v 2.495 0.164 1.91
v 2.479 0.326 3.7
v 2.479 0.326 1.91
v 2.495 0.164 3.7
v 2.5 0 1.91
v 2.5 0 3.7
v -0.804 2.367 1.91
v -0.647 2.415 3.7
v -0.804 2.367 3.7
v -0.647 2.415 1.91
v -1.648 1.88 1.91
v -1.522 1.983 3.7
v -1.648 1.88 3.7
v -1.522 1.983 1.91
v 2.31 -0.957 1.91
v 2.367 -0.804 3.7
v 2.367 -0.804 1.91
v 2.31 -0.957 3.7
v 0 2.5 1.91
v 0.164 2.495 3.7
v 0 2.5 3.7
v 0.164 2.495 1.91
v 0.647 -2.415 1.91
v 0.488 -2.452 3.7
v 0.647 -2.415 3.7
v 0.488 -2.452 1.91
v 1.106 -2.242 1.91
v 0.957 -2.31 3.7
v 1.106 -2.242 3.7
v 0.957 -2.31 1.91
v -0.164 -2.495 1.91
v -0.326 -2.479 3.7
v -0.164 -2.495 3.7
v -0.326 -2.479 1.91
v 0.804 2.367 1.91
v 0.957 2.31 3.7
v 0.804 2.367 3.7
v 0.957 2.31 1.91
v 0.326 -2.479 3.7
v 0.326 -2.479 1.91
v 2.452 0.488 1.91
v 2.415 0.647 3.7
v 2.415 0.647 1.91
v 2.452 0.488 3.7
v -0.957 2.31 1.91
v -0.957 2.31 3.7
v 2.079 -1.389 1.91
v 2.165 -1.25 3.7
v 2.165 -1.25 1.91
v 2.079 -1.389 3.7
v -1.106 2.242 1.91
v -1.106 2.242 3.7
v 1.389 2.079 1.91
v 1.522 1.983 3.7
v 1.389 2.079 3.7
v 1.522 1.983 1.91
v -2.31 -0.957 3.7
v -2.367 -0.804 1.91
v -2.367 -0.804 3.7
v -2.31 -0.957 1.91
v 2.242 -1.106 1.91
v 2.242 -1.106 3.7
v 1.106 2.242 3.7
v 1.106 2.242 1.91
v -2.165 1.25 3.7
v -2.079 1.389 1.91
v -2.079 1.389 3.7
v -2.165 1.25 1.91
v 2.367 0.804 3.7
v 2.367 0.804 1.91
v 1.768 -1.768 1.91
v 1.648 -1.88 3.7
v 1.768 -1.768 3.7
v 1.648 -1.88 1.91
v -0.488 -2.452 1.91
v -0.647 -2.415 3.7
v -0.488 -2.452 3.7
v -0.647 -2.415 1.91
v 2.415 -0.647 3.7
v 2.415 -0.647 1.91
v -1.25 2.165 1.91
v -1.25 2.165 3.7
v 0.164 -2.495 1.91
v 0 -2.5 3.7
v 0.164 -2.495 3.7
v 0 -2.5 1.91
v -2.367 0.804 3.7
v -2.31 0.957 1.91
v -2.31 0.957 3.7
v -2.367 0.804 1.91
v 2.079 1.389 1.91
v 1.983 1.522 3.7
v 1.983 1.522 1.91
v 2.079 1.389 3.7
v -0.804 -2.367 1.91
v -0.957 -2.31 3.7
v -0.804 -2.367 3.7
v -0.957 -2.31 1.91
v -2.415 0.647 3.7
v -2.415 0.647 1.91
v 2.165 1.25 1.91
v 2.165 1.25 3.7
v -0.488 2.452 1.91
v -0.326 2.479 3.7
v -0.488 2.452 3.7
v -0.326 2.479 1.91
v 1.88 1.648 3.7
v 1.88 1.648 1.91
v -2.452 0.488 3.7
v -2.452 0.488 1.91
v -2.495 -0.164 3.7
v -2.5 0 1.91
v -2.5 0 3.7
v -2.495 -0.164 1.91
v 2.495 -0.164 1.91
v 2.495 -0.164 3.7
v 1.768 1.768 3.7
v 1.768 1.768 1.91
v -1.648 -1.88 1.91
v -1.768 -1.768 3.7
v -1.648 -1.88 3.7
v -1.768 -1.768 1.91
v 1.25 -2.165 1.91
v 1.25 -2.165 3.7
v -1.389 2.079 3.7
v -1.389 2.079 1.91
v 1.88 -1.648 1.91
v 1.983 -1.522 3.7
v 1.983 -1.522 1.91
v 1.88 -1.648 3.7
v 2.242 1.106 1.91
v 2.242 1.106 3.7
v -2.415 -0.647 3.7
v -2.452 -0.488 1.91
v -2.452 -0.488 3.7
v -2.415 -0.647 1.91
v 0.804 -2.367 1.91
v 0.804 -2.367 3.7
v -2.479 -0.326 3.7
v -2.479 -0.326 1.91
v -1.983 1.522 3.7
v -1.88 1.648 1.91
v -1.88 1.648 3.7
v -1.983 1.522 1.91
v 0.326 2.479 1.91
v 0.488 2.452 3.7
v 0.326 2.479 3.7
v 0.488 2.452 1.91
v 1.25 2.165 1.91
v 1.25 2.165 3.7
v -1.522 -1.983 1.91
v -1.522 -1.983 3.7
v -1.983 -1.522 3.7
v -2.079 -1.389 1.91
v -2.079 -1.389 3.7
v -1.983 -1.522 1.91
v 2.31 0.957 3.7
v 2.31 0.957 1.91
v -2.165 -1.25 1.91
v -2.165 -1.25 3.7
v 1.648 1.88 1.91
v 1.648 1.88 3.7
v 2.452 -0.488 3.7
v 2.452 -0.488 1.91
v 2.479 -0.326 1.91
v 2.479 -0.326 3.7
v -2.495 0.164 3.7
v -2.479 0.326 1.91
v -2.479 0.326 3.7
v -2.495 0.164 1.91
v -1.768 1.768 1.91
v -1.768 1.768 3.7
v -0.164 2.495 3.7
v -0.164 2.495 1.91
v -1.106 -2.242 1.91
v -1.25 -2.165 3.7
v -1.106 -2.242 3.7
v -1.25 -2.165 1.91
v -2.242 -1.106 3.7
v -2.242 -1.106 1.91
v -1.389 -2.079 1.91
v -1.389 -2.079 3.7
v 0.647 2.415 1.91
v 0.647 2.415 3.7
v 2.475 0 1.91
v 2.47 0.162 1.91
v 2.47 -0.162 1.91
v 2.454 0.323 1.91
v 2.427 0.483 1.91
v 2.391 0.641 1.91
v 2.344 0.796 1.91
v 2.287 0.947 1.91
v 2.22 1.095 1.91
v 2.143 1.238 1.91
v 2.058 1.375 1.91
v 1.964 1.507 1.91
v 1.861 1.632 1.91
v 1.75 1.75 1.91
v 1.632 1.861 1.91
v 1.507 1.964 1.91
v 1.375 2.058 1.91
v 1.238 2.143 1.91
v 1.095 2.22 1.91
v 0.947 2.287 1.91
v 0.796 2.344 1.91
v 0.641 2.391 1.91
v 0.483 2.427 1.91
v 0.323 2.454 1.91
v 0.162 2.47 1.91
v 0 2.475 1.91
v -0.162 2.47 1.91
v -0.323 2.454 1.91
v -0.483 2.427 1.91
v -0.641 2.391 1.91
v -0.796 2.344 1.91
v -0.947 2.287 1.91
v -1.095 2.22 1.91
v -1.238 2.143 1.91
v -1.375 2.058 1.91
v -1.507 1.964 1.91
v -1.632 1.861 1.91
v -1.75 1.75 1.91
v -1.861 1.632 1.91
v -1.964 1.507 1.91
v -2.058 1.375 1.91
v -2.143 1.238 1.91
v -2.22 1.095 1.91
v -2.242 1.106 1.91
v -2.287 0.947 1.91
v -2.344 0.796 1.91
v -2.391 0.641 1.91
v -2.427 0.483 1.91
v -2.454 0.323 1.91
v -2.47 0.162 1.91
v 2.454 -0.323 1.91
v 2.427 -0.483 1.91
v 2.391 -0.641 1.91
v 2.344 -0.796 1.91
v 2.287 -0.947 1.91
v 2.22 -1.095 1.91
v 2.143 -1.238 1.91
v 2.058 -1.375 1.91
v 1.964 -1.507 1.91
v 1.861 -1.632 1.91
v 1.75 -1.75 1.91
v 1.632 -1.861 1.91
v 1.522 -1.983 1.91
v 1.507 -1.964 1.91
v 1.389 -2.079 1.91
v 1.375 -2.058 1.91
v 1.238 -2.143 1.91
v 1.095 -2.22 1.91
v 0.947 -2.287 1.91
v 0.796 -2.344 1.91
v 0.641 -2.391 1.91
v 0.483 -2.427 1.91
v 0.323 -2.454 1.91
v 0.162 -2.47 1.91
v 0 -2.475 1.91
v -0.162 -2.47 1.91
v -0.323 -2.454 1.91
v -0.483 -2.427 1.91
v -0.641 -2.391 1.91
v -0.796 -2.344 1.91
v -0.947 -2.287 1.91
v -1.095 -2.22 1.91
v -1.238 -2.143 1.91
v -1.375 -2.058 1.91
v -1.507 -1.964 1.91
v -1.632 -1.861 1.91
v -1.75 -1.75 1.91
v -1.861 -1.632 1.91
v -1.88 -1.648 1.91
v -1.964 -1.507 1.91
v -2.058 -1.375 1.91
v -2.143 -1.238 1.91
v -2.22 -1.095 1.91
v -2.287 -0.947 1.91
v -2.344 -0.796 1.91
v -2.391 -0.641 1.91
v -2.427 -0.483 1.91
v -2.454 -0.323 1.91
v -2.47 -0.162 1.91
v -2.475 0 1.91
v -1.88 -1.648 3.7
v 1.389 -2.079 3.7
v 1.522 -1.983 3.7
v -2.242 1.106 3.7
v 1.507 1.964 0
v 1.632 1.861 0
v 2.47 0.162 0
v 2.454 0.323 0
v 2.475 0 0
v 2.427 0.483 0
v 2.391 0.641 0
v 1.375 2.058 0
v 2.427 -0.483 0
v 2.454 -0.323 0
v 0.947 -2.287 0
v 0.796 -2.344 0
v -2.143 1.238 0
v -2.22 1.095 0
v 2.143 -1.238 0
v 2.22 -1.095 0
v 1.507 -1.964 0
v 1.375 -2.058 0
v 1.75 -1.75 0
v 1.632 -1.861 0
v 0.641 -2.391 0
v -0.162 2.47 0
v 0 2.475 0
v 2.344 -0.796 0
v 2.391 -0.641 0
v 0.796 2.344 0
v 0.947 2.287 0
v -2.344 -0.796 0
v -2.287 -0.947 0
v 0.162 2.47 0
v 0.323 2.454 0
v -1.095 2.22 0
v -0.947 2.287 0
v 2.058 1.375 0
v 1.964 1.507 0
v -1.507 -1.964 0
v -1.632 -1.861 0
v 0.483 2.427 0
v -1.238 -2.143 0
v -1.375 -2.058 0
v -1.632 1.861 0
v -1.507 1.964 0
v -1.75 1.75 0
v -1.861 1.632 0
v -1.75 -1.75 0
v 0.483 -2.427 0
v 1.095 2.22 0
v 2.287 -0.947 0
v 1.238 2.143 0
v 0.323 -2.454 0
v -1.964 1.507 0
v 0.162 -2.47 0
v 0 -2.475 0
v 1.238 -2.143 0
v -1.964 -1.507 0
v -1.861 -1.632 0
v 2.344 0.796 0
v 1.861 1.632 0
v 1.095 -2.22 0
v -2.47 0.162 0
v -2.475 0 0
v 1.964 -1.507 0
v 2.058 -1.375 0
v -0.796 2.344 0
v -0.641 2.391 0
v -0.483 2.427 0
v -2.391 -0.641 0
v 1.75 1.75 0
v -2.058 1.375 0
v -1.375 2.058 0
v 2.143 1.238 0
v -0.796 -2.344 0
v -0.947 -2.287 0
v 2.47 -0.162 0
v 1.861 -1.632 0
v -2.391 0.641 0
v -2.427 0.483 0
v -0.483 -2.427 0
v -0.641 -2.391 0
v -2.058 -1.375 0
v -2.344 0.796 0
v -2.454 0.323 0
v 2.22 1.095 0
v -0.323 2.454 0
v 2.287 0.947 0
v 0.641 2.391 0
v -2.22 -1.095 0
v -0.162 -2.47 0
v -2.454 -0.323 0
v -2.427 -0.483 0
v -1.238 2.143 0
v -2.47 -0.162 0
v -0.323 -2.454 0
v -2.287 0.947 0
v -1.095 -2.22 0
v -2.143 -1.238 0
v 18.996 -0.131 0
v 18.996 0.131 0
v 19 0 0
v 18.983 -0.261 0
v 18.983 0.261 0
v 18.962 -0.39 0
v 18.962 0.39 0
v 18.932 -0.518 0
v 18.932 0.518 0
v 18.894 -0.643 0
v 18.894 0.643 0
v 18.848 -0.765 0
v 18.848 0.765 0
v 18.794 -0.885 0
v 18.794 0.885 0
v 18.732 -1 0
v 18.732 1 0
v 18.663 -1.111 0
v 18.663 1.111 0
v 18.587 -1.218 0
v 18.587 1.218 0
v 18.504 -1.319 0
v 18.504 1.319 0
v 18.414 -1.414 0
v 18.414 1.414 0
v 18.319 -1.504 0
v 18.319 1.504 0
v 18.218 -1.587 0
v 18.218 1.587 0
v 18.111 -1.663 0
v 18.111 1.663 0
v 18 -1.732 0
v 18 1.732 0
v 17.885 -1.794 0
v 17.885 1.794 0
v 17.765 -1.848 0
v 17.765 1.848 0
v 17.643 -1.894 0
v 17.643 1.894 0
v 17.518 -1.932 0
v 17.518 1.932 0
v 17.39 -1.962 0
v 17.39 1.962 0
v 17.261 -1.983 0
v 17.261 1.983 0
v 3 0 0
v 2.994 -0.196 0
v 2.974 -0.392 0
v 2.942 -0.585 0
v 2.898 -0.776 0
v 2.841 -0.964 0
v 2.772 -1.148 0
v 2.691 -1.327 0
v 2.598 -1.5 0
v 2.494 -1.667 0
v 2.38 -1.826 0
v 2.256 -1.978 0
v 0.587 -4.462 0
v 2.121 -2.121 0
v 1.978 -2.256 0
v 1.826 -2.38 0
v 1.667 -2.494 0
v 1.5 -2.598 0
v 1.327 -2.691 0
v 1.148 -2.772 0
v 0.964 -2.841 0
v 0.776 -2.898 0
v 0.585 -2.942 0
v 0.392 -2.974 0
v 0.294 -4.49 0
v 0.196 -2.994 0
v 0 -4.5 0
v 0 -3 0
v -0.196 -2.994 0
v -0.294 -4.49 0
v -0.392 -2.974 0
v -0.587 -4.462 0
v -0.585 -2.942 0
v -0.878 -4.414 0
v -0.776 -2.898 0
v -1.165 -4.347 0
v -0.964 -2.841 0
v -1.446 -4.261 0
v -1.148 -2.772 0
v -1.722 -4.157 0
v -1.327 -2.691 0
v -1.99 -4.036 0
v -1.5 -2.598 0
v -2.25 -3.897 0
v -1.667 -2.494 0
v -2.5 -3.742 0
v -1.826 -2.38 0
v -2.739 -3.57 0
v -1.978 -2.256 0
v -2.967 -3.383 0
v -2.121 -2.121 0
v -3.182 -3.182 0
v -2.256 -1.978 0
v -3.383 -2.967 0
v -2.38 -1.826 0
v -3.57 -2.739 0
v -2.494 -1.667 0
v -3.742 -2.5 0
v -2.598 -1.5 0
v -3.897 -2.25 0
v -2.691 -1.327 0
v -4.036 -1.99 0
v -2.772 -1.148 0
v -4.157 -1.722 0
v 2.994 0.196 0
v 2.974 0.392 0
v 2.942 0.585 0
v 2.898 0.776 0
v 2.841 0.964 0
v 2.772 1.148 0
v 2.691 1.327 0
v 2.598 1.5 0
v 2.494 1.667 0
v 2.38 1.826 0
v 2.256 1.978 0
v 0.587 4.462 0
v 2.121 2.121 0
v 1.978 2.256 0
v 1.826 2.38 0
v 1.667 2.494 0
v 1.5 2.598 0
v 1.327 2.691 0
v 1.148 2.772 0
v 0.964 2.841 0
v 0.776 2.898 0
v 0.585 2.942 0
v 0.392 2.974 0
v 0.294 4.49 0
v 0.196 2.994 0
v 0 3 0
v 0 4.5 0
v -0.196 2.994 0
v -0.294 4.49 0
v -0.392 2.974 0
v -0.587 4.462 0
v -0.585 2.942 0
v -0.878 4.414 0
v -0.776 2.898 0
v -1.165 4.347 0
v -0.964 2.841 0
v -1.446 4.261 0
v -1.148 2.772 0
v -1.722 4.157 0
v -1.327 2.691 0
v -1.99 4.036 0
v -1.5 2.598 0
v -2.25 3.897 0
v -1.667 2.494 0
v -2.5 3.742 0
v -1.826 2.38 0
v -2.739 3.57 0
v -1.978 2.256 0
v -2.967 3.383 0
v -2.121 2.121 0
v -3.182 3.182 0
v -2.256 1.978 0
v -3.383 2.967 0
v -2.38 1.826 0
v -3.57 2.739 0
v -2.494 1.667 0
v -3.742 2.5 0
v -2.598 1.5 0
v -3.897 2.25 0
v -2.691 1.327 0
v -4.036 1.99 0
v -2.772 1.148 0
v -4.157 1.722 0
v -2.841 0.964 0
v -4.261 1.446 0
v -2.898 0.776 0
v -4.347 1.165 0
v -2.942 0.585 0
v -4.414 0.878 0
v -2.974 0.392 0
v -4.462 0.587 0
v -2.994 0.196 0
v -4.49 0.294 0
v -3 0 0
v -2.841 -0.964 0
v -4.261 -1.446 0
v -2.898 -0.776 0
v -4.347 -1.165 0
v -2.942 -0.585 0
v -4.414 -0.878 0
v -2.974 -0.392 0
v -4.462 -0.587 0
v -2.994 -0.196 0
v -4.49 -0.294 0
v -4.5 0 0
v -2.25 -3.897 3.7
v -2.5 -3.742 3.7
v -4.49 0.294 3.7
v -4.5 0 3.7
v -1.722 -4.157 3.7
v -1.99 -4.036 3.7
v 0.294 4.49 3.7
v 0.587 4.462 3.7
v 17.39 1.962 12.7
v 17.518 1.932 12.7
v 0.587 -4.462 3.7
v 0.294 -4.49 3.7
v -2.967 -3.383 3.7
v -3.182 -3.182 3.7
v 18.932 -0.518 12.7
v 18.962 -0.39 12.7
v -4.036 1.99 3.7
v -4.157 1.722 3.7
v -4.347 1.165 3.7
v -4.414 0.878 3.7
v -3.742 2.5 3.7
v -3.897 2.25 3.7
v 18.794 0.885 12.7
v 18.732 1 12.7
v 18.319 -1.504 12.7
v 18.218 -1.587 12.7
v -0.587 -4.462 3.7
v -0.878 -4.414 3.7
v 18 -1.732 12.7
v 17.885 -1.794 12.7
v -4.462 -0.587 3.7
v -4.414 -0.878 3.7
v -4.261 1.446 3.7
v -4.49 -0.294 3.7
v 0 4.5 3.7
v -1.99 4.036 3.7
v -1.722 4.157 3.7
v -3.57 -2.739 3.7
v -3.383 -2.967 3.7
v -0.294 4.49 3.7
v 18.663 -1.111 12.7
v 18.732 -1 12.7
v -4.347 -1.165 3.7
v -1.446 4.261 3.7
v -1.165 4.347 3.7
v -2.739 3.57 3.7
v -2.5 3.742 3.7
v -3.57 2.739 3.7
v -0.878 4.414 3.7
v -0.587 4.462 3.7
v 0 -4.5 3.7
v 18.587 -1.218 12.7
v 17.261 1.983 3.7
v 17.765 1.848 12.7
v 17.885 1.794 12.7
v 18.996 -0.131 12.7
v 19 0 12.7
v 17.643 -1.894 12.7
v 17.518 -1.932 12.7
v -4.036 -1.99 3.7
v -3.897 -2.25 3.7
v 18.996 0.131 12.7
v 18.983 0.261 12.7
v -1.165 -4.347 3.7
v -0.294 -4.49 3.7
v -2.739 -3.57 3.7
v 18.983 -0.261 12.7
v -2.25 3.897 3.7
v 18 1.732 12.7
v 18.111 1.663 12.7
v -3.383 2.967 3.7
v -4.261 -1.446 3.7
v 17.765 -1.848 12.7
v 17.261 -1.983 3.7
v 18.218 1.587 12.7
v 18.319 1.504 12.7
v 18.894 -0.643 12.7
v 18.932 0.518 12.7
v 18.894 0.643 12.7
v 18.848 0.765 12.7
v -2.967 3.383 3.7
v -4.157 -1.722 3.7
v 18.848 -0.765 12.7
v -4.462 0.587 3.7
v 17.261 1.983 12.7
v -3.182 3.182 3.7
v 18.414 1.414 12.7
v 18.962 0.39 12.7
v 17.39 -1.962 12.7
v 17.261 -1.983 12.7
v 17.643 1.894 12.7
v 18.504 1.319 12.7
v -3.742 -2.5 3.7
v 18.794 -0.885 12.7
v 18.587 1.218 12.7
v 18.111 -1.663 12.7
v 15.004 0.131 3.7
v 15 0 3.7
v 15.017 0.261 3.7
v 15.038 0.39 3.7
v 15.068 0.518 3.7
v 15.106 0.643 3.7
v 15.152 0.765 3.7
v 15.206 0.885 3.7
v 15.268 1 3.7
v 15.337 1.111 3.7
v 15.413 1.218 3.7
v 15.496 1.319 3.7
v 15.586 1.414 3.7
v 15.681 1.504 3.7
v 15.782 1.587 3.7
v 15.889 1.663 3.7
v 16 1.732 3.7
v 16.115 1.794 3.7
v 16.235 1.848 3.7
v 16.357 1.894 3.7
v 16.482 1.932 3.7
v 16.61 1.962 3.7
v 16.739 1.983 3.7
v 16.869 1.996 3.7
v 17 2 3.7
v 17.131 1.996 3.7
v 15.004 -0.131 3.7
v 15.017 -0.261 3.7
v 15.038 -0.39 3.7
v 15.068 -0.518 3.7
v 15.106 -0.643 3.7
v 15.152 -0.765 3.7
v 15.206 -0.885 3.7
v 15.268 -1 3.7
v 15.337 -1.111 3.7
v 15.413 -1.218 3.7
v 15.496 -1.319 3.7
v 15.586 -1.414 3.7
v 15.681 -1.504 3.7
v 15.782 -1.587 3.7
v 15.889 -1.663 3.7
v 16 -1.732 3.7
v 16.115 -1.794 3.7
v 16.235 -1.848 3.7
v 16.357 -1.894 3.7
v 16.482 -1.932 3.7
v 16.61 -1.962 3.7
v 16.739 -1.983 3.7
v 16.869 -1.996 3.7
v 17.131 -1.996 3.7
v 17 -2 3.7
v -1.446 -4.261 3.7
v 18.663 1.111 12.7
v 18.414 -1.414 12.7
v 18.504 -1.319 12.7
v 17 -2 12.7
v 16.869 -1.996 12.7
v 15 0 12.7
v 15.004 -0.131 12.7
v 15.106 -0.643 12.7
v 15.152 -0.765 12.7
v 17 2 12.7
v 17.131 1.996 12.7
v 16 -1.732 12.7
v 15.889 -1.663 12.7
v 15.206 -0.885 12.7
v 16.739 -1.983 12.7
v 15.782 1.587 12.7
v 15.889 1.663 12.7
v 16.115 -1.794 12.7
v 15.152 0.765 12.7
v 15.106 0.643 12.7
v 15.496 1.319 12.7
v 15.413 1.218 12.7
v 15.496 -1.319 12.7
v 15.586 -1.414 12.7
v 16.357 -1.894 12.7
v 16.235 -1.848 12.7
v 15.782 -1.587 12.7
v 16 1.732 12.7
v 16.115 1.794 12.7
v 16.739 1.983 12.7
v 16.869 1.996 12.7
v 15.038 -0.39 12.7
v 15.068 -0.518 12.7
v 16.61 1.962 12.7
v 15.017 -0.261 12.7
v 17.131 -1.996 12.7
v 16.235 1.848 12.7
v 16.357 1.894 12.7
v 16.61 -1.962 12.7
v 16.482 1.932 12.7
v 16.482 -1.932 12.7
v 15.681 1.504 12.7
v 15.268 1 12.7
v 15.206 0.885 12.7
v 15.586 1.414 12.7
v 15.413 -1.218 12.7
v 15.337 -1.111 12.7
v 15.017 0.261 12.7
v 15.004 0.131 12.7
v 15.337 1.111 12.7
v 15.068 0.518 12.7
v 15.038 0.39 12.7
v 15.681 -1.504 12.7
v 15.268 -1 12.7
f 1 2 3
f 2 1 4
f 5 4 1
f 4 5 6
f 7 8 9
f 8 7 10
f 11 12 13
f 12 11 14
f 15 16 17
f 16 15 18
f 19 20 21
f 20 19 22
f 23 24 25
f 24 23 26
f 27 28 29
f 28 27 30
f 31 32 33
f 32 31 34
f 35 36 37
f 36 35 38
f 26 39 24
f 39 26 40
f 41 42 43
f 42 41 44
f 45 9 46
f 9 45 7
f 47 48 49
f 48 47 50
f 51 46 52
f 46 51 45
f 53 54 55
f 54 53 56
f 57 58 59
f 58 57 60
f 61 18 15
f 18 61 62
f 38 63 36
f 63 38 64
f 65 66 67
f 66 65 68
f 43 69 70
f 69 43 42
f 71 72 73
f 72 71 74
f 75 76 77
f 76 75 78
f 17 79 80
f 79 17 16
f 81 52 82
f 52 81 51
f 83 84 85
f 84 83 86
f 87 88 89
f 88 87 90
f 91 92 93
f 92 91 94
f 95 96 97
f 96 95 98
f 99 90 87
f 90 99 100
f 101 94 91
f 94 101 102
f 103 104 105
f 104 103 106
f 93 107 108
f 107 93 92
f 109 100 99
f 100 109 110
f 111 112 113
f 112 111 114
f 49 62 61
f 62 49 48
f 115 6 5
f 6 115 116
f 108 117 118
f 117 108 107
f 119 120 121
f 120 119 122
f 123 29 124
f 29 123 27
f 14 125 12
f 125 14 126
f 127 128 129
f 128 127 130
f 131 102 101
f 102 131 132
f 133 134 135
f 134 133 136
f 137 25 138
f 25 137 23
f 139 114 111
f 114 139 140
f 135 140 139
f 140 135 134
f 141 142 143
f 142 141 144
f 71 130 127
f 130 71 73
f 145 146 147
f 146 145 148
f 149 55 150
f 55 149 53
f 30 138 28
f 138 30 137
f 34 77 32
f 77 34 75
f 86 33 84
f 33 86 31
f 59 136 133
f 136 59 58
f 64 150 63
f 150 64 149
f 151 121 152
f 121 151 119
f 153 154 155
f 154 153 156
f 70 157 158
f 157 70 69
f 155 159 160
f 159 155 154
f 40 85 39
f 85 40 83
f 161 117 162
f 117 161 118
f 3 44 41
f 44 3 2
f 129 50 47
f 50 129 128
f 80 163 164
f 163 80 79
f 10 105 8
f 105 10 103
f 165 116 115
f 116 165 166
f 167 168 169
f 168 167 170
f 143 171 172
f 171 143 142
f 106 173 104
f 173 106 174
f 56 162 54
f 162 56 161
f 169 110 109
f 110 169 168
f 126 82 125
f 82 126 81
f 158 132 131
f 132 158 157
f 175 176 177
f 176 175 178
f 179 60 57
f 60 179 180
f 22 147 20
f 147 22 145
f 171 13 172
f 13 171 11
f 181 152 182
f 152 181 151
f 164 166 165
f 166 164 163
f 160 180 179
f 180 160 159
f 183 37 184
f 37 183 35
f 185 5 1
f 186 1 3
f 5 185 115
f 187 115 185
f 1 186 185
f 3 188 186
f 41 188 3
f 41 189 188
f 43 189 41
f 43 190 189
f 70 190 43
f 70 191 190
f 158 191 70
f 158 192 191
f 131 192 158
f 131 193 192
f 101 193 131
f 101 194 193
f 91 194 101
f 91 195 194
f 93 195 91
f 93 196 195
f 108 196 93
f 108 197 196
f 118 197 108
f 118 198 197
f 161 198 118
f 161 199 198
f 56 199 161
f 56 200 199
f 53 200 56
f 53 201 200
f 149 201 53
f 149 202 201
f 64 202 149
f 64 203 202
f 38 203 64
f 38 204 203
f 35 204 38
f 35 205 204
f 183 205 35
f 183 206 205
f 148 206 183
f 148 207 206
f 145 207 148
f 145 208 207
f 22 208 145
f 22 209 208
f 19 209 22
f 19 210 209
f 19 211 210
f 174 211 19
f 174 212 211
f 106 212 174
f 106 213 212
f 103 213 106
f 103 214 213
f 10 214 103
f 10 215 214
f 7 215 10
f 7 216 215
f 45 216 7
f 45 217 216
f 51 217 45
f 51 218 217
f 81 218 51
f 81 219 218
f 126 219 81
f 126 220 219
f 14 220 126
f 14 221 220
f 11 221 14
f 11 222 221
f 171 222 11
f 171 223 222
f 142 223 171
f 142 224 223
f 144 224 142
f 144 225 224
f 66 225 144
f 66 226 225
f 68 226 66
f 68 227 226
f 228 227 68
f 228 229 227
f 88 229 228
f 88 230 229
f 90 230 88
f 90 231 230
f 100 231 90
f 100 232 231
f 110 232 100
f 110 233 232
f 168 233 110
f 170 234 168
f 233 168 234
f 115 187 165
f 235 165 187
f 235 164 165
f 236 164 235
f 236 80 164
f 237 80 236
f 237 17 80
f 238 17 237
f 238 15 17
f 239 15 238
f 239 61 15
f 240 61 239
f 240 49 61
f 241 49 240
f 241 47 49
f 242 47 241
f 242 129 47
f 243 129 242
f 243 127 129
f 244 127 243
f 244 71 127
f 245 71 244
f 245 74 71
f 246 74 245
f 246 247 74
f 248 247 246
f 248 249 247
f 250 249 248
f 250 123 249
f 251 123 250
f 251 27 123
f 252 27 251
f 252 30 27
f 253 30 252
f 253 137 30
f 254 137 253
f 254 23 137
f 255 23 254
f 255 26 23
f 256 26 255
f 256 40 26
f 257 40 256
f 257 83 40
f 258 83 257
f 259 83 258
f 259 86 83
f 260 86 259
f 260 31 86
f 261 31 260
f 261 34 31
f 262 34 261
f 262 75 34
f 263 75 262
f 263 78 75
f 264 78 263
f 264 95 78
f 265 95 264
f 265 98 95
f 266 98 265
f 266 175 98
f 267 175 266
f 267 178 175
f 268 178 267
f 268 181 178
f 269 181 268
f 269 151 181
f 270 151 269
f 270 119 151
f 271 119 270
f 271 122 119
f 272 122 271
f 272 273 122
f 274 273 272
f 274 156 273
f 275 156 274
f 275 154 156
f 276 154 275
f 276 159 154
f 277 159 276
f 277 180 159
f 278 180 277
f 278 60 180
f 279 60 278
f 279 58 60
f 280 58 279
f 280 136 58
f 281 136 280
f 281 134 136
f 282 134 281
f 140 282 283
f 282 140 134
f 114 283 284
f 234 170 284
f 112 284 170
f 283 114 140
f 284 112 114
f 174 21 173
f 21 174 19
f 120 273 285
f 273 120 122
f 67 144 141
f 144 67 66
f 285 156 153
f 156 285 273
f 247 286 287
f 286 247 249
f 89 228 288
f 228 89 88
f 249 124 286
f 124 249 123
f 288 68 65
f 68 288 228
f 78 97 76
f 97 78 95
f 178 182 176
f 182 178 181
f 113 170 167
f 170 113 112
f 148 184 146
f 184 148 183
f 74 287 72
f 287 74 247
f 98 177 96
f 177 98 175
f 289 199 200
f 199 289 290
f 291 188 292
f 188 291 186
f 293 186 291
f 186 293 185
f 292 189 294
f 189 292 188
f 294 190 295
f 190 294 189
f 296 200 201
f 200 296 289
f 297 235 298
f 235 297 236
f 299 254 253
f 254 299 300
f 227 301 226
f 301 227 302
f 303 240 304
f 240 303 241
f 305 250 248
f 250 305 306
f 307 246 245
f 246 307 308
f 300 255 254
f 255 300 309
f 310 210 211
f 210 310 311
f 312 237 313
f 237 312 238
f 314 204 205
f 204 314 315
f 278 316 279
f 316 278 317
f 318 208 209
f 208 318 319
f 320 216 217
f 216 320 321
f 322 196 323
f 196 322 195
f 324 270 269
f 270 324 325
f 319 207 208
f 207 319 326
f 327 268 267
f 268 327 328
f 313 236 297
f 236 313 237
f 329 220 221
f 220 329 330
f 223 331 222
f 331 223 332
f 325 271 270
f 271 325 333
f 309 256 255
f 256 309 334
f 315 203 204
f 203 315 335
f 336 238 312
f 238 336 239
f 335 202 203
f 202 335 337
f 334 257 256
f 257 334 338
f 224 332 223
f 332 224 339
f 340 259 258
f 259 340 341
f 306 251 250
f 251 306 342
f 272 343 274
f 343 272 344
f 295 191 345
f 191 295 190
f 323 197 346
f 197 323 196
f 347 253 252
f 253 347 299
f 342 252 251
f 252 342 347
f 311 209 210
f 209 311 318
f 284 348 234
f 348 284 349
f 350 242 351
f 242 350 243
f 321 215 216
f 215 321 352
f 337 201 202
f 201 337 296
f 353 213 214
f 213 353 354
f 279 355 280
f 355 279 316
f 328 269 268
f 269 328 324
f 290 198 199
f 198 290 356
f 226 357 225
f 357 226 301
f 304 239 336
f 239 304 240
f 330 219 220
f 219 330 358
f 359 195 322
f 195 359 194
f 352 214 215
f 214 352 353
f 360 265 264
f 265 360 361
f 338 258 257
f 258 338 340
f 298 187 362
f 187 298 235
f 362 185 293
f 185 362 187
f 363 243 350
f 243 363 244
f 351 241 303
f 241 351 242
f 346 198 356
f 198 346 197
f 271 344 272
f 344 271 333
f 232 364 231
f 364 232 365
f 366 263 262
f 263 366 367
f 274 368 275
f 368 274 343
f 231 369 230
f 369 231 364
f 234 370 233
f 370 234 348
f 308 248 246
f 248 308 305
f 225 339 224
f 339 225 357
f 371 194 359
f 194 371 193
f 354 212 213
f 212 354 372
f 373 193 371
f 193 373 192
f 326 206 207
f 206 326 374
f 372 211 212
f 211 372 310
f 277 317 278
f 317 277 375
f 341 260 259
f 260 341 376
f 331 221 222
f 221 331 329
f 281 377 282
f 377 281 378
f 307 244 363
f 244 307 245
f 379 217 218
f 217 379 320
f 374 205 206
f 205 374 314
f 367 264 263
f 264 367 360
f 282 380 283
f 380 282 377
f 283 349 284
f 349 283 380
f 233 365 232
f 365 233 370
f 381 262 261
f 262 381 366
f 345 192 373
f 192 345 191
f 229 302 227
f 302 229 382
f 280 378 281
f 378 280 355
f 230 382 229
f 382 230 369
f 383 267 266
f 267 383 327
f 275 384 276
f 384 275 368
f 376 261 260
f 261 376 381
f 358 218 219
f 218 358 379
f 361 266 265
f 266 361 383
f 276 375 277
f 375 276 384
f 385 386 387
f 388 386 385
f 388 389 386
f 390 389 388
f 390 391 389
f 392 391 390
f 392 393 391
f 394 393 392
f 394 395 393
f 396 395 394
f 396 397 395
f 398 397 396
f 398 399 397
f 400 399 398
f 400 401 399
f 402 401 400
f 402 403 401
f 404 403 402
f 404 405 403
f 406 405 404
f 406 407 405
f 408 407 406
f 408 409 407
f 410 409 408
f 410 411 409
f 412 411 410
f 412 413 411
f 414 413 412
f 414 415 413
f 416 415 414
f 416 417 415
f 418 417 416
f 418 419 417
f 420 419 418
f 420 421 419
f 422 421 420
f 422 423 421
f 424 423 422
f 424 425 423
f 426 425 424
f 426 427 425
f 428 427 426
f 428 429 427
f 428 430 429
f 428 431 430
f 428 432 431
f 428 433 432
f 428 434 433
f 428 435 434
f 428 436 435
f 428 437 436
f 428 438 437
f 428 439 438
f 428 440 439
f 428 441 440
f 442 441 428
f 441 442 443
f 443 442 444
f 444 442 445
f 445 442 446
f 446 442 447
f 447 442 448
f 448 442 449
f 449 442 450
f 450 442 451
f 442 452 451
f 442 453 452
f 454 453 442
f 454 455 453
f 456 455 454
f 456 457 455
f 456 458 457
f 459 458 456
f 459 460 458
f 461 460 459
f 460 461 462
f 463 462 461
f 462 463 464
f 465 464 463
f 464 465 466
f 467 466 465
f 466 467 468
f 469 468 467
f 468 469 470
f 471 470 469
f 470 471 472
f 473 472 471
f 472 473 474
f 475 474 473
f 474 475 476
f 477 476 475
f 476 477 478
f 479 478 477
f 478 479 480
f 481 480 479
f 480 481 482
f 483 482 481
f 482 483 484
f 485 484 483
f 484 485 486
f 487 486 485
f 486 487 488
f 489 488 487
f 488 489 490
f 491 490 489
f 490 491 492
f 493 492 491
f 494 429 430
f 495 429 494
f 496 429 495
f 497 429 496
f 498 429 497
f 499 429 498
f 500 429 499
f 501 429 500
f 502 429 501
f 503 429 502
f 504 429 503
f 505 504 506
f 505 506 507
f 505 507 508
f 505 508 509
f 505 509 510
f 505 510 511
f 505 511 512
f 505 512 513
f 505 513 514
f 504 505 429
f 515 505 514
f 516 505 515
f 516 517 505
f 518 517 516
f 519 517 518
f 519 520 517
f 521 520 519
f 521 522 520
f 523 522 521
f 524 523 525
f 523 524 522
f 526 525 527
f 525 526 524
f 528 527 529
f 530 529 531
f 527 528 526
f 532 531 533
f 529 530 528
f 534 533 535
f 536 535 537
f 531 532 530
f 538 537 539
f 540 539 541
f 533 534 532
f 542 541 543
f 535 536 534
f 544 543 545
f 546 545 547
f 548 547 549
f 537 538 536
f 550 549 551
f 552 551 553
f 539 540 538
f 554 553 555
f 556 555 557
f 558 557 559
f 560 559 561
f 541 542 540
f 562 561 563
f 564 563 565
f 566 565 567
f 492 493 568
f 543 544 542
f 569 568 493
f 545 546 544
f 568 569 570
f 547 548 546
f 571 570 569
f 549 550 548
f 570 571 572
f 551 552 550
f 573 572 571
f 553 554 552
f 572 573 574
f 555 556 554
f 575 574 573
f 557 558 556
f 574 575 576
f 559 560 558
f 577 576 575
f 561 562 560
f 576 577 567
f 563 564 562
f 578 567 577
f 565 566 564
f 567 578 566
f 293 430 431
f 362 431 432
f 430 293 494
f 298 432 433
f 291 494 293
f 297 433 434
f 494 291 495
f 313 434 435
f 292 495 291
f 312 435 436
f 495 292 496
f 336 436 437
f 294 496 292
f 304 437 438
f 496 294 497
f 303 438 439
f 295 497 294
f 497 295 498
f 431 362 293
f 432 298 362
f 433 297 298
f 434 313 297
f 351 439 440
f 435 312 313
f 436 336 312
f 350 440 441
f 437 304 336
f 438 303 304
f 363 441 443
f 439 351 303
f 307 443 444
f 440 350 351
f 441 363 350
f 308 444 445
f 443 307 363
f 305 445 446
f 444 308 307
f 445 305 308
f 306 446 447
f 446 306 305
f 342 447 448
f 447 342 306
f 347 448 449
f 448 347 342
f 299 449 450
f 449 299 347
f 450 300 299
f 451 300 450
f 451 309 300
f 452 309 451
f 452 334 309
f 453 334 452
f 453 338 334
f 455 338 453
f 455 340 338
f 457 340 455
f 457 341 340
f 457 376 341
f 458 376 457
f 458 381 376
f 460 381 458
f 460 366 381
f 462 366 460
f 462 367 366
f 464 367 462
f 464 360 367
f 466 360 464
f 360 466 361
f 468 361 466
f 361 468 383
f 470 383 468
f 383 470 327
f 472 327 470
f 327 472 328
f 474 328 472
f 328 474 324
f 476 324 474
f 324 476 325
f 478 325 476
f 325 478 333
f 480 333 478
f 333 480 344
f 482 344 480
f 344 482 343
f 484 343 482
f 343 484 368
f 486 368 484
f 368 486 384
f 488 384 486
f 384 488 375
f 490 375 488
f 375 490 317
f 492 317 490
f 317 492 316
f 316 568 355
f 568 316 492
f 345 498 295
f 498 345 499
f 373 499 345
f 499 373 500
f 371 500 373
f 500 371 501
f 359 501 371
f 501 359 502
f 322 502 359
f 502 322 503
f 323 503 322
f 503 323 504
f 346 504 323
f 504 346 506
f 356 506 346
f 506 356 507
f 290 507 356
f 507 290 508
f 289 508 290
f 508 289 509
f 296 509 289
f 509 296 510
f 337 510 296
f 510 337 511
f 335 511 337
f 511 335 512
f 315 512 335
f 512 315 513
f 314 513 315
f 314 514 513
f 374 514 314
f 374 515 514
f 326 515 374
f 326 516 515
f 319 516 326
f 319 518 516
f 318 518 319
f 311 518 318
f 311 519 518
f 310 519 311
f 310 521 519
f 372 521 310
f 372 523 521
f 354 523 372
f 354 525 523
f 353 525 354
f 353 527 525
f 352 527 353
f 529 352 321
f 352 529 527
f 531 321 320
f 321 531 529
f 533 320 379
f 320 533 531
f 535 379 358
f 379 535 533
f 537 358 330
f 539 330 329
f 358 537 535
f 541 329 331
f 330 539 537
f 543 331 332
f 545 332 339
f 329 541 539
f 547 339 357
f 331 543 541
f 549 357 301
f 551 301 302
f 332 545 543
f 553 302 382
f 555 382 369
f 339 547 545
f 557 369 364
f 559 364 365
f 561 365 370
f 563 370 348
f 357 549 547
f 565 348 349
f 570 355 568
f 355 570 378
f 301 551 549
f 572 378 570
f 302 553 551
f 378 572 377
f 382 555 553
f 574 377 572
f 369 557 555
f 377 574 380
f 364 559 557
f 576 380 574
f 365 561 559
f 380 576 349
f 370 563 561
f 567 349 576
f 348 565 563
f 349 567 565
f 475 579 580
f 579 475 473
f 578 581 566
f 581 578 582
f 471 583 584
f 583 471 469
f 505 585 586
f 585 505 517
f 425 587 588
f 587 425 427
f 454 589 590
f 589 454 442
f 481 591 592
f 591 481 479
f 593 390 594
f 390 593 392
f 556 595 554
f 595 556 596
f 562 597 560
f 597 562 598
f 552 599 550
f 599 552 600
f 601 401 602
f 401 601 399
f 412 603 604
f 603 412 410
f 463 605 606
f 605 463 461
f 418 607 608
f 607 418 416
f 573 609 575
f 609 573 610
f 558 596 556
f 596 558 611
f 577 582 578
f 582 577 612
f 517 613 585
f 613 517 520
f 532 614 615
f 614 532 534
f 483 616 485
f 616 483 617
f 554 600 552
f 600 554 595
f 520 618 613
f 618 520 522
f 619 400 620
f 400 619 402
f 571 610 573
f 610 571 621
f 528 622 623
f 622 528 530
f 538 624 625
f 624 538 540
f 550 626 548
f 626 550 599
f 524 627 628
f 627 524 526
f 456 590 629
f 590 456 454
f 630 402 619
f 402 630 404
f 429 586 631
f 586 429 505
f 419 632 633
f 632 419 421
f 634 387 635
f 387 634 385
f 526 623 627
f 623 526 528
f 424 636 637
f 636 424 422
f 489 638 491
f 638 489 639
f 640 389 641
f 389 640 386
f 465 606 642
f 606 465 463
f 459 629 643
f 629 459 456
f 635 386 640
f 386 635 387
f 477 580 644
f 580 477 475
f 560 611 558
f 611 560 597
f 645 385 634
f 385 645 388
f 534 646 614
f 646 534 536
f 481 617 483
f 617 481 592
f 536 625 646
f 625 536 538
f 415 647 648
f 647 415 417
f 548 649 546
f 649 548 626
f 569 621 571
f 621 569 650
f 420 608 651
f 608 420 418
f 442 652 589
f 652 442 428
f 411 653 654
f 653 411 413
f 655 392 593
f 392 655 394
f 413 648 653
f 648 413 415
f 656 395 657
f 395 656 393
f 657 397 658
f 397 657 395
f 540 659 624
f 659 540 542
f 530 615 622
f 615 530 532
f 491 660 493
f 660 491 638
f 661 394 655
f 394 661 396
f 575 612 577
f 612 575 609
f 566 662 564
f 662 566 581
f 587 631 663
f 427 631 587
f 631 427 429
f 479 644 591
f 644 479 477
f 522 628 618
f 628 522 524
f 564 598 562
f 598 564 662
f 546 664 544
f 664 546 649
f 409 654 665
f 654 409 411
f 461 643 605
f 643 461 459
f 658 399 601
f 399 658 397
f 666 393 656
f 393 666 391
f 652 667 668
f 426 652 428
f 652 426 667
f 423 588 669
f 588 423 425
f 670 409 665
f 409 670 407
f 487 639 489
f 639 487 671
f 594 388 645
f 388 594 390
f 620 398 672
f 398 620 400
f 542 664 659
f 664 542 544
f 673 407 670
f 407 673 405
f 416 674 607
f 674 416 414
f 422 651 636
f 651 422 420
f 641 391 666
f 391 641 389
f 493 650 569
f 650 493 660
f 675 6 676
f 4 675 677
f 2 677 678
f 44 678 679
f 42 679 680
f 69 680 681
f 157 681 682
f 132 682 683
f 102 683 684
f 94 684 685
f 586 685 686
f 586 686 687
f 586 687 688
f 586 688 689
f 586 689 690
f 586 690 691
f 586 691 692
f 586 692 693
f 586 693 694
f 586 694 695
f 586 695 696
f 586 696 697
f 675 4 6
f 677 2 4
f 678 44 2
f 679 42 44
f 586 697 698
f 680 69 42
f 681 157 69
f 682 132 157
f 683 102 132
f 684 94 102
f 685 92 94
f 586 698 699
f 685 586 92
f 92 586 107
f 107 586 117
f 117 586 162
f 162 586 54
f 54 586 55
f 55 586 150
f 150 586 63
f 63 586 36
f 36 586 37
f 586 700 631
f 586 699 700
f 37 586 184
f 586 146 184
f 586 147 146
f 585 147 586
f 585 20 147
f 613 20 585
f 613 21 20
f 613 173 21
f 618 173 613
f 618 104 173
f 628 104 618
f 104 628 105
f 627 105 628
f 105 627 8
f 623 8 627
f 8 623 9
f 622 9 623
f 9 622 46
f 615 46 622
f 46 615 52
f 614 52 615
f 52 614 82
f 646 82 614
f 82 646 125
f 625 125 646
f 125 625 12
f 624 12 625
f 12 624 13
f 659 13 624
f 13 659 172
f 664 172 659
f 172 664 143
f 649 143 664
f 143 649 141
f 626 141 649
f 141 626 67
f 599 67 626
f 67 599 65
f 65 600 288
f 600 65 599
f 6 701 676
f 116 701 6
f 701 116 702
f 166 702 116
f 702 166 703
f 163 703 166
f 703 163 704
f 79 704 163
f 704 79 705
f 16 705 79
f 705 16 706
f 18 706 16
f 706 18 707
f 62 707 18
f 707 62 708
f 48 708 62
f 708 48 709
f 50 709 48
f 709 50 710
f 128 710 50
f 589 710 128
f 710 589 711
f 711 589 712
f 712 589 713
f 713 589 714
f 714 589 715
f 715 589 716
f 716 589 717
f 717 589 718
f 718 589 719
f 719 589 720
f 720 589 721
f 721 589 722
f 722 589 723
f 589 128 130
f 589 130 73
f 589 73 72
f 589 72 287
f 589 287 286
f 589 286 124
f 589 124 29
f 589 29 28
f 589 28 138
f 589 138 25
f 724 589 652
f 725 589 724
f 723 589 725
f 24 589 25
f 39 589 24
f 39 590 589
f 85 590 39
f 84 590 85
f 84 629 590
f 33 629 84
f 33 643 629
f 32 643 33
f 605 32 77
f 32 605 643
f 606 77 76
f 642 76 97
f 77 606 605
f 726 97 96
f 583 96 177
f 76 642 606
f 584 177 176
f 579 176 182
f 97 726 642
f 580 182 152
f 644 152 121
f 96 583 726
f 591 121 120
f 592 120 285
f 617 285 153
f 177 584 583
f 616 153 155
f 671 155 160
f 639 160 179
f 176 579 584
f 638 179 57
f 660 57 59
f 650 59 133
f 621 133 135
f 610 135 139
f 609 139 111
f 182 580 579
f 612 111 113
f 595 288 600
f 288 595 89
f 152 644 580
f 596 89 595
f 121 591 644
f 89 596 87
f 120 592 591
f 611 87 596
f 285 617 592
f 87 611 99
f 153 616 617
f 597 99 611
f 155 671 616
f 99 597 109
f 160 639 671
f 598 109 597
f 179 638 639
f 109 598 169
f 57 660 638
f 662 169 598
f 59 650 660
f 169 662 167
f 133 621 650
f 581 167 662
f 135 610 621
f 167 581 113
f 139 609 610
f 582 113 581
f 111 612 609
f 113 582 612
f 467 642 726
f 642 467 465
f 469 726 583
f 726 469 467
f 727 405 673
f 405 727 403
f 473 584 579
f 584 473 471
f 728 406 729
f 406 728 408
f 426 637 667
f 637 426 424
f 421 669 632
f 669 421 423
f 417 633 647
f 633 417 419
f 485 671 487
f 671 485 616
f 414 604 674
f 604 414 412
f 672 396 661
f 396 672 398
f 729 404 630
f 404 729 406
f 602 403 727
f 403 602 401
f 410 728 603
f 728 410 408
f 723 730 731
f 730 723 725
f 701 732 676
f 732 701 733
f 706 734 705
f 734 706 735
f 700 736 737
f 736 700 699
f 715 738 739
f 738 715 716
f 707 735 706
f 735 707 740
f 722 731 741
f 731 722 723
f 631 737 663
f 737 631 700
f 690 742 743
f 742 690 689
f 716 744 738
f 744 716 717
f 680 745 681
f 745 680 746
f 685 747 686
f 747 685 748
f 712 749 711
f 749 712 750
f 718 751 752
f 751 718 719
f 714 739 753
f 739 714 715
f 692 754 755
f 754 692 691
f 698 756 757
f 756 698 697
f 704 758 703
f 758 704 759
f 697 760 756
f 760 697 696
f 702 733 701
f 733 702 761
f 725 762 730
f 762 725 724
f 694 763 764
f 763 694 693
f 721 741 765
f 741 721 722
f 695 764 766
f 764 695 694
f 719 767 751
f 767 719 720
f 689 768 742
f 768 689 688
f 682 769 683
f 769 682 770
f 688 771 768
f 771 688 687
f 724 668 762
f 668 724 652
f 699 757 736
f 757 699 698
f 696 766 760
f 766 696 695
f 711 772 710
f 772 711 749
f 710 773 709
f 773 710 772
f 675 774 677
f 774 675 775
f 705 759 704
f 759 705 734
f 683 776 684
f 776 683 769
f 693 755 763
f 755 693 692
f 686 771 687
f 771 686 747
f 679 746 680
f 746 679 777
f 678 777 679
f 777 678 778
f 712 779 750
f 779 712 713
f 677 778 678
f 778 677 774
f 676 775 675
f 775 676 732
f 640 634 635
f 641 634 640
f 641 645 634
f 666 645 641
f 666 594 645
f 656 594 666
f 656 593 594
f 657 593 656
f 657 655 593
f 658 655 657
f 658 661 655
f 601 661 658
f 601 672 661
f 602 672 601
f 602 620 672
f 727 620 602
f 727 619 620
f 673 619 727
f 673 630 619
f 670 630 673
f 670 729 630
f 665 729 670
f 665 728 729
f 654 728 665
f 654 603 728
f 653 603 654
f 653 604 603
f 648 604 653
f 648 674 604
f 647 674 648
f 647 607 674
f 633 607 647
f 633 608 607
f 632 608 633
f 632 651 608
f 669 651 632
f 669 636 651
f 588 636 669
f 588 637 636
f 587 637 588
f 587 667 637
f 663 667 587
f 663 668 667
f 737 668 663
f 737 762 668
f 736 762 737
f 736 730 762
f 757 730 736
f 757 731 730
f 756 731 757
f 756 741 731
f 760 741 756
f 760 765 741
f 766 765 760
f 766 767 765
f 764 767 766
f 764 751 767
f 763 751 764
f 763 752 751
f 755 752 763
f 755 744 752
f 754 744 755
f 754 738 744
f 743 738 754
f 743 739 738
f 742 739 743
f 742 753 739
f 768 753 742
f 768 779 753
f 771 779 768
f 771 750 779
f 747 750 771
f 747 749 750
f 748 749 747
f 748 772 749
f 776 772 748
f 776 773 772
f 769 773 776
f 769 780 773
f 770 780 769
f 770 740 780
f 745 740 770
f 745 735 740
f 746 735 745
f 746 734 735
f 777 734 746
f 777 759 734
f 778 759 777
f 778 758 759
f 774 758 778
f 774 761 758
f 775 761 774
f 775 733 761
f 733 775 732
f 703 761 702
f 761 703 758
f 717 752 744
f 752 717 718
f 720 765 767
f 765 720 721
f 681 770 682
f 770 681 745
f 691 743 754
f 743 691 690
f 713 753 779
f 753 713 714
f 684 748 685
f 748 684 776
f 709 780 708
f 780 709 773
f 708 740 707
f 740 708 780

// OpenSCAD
// ============================================================
//  AxiDraw pen-lift servo horn — parametric, for MG90S / SG90
// ============================================================
//  Cam-follower design: a single arm with a peg / roller / bearing
//  at the tip that sweeps under the pen-carriage aluminum tab to
//  lift it. Pen returns down under gravity when the servo swings
//  the horn back.
//
//  Center is a smooth press-fit bore for the servo spline
//  (teeth cut into the plastic on first install).
//
//  How to use:
//    1. Adjust PARAMETERS block below.
//    2. Preview: F5.  Render solid: F6.  Export: File > Export > STL.
//    3. Print hub-down, arm flat on the bed.
//
// ============================================================
//  PARAMETERS
// ============================================================

/* [Servo — MG90S defaults] */
spline_od       = 4.85;   // Outer diameter of splined shaft (mm) — nominal MG90S spec
spline_bore     = 4.95;   // Center hole ID; smaller = tighter press-fit.
                          //   v1 4.55: too tight to press on.
                          //   v2 5.05: seated but slightly loose.
                          //   v3 4.95: 0.1 tighter than v2 for a firmer bite.
shaft_height    = 5.0;    // Height of splined shaft above the servo case (mm)
boss_od         = 6.0;    // Diameter of the non-splined boss under the spline (mm)
boss_height     = 0.0;    // Height of that boss. This servo has NO boss → 0.

/* [Center screw — M2.5 self-tapper] */
screw_head_od   = 5.0;    // Screw head diameter, for counterbore
screw_head_h    = 1.8;    // Head recess depth
screw_shaft_od  = 2.8;    // Clearance for the M2.5 shaft (2.5 nominal + slop)

/* [Arm — stock AxiDraw pen-lift geometry] */
// Arm tip = roller_position (defined below). Adjust roller_position to
// change effective arm length as well as cam radius.
// Arm tip width matches peg diameter so the arm tapers cleanly into the
// roller with no surrounding shoulder.
arm_width       = 4.0;    // Arm tip width (mm) — set equal to peg_od
arm_thickness   = 3.7;    // Arm vertical thickness (mm)
                          //   v3 at 3.0 was 0.7 mm below the top of the spline — the M2.5
                          //   screw head slid past into the shaft and wouldn't preload.
                          //   3.7 puts the horn top flush with the top of the spline gears.
hub_od          = 9.0;    // Outer diameter of the central hub (mm)

/* [Cam follower at tip]
   Position along the arm (distance from spline center).
   Effective cam radius = roller_position + roller_od/2 during lift stroke,
   so lift stroke ≈ 2 * roller_position for a ~180° servo sweep. */
roller_position = 17.0;   // Distance from spline center to roller CENTER (mm)
                          //   v1 19 mm: too long. v2 15 mm: a touch short.
                          //   v3 17 mm: midpoint of the two.

/* Roller/tip mode:
     0 = integrated printed peg (simplest)
     1 = through-hole for a pin (steel wire or small screw); slip a
         bearing or brass sleeve over the pin externally
     2 = pocket for a small ball bearing (recommended if you have one) */
ROLLER_MODE = 0;

// Mode 0: integrated peg dimensions
// Target: total protrusion from horn bottom face to peg tip ≈ 12 mm.
// That means peg_length = 12 - arm_thickness.
peg_od          = 4.0;    // Peg diameter (mm)
peg_length      = 9.0;    // How far it sticks out from the arm's face (mm)
peg_side        = 1;      // Which face: -1 = bottom, +1 = top (opposite servo body)

// Mode 1: through-hole for a pin
pin_hole_d      = 2.2;    // Slip fit for M2 screw or 2 mm wire
pin_boss_od     = 6.0;    // Reinforcement around the pin hole (mm)

// Mode 2: bearing pocket
// Common tiny bearings:  MR52ZZ 2x5x2.5   MR63ZZ 3x6x2.5   MR74ZZ 4x7x2.5
bearing_od      = 6.0;    // Bearing OD (mm)
bearing_thk     = 2.5;    // Bearing width (mm)
bearing_id_pin  = 3.0;    // Center pin diameter under the bearing
bearing_boss_od = 8.5;    // Reinforcement around the bearing pocket

/* [Print quality] */
$fn             = 96;

// ============================================================
//  GEOMETRY
// ============================================================

module arm_2d() {
    hull() {
        circle(d = hub_od);
        translate([roller_position, 0]) circle(d = arm_width);
    }
}

module horn_body() {
    linear_extrude(height = arm_thickness) arm_2d();
}

module center_hole() {
    // Counterbore for screw head
    translate([0, 0, arm_thickness - screw_head_h + 0.01])
        cylinder(h = screw_head_h + 0.02, d = screw_head_od);
    // Through clearance for screw shaft
    translate([0, 0, -0.1])
        cylinder(h = arm_thickness + 0.2, d = screw_shaft_od);
}

module spline_bore_hole() {
    // Press-fit smooth bore + relief for the boss below
    translate([0, 0, -0.01])
        cylinder(h = shaft_height + 0.02, d = spline_bore);
    translate([0, 0, -0.01])
        cylinder(h = boss_height + 0.01, d = boss_od);
}

// -------- Tip variants ---------------------------------------

module tip_peg() {
    // A cylinder sticking out perpendicular to the arm's flat face.
    // peg_side = +1 sits on top of the arm, -1 hangs below.
    z0 = (peg_side > 0) ? arm_thickness : -peg_length;
    translate([roller_position, 0, z0])
        cylinder(h = peg_length, d = peg_od);
}

module tip_pin_hole() {
    // Small reinforcement boss around the through-hole so it doesn't
    // split when you press a pin in.
    translate([roller_position, 0, 0])
        cylinder(h = arm_thickness, d = pin_boss_od);
}
module tip_pin_hole_cut() {
    translate([roller_position, 0, -0.1])
        cylinder(h = arm_thickness + 0.2, d = pin_hole_d);
}

module tip_bearing_boss() {
    translate([roller_position, 0, 0])
        cylinder(h = arm_thickness, d = bearing_boss_od);
}
module tip_bearing_cut() {
    // Bearing pocket sits flush with one face; center pin projects
    // out the other so you have something to press the bearing onto.
    // Pocket entrance from top face, pin sticks down from bottom face.
    translate([roller_position, 0, arm_thickness - bearing_thk + 0.01])
        cylinder(h = bearing_thk + 0.1, d = bearing_od);
    // Through hole for the pin passing through the bore of the bearing
    translate([roller_position, 0, -0.1])
        cylinder(h = arm_thickness + 0.2, d = bearing_id_pin);
}

// ============================================================
//  ASSEMBLY
// ============================================================

union() {
    difference() {
        union() {
            horn_body();
            if (ROLLER_MODE == 1) tip_pin_hole();
            if (ROLLER_MODE == 2) tip_bearing_boss();
        }
        center_hole();
        spline_bore_hole();
        if (ROLLER_MODE == 1) tip_pin_hole_cut();
        if (ROLLER_MODE == 2) tip_bearing_cut();
    }
    if (ROLLER_MODE == 0) tip_peg();
}

// ============================================================
//  NOTES
// ============================================================
//  Print orientation: hub down, arm flat on the bed. Layer lines
//    run through the arm's thickness so bending loads stay in-plane.
//  Layer height: 0.15 mm; 3+ perimeters; 40–60% infill; PLA or PETG.
//  Install: light oil on the servo spline. Press horn straight
//    down until seated flush against the boss; screw down.
//
//  Fit tuning:
//    Horn spins on shaft         → spline_bore -= 0.05
//    Horn cracks on install      → spline_bore += 0.05  (or hub_od += 1)
//    Not enough pen lift         → roller_position += 1..3
//    Too much lift / servo stall → roller_position -= 1..2
//    Roller wears fast (mode 0)  → switch to ROLLER_MODE = 1 or 2
//
